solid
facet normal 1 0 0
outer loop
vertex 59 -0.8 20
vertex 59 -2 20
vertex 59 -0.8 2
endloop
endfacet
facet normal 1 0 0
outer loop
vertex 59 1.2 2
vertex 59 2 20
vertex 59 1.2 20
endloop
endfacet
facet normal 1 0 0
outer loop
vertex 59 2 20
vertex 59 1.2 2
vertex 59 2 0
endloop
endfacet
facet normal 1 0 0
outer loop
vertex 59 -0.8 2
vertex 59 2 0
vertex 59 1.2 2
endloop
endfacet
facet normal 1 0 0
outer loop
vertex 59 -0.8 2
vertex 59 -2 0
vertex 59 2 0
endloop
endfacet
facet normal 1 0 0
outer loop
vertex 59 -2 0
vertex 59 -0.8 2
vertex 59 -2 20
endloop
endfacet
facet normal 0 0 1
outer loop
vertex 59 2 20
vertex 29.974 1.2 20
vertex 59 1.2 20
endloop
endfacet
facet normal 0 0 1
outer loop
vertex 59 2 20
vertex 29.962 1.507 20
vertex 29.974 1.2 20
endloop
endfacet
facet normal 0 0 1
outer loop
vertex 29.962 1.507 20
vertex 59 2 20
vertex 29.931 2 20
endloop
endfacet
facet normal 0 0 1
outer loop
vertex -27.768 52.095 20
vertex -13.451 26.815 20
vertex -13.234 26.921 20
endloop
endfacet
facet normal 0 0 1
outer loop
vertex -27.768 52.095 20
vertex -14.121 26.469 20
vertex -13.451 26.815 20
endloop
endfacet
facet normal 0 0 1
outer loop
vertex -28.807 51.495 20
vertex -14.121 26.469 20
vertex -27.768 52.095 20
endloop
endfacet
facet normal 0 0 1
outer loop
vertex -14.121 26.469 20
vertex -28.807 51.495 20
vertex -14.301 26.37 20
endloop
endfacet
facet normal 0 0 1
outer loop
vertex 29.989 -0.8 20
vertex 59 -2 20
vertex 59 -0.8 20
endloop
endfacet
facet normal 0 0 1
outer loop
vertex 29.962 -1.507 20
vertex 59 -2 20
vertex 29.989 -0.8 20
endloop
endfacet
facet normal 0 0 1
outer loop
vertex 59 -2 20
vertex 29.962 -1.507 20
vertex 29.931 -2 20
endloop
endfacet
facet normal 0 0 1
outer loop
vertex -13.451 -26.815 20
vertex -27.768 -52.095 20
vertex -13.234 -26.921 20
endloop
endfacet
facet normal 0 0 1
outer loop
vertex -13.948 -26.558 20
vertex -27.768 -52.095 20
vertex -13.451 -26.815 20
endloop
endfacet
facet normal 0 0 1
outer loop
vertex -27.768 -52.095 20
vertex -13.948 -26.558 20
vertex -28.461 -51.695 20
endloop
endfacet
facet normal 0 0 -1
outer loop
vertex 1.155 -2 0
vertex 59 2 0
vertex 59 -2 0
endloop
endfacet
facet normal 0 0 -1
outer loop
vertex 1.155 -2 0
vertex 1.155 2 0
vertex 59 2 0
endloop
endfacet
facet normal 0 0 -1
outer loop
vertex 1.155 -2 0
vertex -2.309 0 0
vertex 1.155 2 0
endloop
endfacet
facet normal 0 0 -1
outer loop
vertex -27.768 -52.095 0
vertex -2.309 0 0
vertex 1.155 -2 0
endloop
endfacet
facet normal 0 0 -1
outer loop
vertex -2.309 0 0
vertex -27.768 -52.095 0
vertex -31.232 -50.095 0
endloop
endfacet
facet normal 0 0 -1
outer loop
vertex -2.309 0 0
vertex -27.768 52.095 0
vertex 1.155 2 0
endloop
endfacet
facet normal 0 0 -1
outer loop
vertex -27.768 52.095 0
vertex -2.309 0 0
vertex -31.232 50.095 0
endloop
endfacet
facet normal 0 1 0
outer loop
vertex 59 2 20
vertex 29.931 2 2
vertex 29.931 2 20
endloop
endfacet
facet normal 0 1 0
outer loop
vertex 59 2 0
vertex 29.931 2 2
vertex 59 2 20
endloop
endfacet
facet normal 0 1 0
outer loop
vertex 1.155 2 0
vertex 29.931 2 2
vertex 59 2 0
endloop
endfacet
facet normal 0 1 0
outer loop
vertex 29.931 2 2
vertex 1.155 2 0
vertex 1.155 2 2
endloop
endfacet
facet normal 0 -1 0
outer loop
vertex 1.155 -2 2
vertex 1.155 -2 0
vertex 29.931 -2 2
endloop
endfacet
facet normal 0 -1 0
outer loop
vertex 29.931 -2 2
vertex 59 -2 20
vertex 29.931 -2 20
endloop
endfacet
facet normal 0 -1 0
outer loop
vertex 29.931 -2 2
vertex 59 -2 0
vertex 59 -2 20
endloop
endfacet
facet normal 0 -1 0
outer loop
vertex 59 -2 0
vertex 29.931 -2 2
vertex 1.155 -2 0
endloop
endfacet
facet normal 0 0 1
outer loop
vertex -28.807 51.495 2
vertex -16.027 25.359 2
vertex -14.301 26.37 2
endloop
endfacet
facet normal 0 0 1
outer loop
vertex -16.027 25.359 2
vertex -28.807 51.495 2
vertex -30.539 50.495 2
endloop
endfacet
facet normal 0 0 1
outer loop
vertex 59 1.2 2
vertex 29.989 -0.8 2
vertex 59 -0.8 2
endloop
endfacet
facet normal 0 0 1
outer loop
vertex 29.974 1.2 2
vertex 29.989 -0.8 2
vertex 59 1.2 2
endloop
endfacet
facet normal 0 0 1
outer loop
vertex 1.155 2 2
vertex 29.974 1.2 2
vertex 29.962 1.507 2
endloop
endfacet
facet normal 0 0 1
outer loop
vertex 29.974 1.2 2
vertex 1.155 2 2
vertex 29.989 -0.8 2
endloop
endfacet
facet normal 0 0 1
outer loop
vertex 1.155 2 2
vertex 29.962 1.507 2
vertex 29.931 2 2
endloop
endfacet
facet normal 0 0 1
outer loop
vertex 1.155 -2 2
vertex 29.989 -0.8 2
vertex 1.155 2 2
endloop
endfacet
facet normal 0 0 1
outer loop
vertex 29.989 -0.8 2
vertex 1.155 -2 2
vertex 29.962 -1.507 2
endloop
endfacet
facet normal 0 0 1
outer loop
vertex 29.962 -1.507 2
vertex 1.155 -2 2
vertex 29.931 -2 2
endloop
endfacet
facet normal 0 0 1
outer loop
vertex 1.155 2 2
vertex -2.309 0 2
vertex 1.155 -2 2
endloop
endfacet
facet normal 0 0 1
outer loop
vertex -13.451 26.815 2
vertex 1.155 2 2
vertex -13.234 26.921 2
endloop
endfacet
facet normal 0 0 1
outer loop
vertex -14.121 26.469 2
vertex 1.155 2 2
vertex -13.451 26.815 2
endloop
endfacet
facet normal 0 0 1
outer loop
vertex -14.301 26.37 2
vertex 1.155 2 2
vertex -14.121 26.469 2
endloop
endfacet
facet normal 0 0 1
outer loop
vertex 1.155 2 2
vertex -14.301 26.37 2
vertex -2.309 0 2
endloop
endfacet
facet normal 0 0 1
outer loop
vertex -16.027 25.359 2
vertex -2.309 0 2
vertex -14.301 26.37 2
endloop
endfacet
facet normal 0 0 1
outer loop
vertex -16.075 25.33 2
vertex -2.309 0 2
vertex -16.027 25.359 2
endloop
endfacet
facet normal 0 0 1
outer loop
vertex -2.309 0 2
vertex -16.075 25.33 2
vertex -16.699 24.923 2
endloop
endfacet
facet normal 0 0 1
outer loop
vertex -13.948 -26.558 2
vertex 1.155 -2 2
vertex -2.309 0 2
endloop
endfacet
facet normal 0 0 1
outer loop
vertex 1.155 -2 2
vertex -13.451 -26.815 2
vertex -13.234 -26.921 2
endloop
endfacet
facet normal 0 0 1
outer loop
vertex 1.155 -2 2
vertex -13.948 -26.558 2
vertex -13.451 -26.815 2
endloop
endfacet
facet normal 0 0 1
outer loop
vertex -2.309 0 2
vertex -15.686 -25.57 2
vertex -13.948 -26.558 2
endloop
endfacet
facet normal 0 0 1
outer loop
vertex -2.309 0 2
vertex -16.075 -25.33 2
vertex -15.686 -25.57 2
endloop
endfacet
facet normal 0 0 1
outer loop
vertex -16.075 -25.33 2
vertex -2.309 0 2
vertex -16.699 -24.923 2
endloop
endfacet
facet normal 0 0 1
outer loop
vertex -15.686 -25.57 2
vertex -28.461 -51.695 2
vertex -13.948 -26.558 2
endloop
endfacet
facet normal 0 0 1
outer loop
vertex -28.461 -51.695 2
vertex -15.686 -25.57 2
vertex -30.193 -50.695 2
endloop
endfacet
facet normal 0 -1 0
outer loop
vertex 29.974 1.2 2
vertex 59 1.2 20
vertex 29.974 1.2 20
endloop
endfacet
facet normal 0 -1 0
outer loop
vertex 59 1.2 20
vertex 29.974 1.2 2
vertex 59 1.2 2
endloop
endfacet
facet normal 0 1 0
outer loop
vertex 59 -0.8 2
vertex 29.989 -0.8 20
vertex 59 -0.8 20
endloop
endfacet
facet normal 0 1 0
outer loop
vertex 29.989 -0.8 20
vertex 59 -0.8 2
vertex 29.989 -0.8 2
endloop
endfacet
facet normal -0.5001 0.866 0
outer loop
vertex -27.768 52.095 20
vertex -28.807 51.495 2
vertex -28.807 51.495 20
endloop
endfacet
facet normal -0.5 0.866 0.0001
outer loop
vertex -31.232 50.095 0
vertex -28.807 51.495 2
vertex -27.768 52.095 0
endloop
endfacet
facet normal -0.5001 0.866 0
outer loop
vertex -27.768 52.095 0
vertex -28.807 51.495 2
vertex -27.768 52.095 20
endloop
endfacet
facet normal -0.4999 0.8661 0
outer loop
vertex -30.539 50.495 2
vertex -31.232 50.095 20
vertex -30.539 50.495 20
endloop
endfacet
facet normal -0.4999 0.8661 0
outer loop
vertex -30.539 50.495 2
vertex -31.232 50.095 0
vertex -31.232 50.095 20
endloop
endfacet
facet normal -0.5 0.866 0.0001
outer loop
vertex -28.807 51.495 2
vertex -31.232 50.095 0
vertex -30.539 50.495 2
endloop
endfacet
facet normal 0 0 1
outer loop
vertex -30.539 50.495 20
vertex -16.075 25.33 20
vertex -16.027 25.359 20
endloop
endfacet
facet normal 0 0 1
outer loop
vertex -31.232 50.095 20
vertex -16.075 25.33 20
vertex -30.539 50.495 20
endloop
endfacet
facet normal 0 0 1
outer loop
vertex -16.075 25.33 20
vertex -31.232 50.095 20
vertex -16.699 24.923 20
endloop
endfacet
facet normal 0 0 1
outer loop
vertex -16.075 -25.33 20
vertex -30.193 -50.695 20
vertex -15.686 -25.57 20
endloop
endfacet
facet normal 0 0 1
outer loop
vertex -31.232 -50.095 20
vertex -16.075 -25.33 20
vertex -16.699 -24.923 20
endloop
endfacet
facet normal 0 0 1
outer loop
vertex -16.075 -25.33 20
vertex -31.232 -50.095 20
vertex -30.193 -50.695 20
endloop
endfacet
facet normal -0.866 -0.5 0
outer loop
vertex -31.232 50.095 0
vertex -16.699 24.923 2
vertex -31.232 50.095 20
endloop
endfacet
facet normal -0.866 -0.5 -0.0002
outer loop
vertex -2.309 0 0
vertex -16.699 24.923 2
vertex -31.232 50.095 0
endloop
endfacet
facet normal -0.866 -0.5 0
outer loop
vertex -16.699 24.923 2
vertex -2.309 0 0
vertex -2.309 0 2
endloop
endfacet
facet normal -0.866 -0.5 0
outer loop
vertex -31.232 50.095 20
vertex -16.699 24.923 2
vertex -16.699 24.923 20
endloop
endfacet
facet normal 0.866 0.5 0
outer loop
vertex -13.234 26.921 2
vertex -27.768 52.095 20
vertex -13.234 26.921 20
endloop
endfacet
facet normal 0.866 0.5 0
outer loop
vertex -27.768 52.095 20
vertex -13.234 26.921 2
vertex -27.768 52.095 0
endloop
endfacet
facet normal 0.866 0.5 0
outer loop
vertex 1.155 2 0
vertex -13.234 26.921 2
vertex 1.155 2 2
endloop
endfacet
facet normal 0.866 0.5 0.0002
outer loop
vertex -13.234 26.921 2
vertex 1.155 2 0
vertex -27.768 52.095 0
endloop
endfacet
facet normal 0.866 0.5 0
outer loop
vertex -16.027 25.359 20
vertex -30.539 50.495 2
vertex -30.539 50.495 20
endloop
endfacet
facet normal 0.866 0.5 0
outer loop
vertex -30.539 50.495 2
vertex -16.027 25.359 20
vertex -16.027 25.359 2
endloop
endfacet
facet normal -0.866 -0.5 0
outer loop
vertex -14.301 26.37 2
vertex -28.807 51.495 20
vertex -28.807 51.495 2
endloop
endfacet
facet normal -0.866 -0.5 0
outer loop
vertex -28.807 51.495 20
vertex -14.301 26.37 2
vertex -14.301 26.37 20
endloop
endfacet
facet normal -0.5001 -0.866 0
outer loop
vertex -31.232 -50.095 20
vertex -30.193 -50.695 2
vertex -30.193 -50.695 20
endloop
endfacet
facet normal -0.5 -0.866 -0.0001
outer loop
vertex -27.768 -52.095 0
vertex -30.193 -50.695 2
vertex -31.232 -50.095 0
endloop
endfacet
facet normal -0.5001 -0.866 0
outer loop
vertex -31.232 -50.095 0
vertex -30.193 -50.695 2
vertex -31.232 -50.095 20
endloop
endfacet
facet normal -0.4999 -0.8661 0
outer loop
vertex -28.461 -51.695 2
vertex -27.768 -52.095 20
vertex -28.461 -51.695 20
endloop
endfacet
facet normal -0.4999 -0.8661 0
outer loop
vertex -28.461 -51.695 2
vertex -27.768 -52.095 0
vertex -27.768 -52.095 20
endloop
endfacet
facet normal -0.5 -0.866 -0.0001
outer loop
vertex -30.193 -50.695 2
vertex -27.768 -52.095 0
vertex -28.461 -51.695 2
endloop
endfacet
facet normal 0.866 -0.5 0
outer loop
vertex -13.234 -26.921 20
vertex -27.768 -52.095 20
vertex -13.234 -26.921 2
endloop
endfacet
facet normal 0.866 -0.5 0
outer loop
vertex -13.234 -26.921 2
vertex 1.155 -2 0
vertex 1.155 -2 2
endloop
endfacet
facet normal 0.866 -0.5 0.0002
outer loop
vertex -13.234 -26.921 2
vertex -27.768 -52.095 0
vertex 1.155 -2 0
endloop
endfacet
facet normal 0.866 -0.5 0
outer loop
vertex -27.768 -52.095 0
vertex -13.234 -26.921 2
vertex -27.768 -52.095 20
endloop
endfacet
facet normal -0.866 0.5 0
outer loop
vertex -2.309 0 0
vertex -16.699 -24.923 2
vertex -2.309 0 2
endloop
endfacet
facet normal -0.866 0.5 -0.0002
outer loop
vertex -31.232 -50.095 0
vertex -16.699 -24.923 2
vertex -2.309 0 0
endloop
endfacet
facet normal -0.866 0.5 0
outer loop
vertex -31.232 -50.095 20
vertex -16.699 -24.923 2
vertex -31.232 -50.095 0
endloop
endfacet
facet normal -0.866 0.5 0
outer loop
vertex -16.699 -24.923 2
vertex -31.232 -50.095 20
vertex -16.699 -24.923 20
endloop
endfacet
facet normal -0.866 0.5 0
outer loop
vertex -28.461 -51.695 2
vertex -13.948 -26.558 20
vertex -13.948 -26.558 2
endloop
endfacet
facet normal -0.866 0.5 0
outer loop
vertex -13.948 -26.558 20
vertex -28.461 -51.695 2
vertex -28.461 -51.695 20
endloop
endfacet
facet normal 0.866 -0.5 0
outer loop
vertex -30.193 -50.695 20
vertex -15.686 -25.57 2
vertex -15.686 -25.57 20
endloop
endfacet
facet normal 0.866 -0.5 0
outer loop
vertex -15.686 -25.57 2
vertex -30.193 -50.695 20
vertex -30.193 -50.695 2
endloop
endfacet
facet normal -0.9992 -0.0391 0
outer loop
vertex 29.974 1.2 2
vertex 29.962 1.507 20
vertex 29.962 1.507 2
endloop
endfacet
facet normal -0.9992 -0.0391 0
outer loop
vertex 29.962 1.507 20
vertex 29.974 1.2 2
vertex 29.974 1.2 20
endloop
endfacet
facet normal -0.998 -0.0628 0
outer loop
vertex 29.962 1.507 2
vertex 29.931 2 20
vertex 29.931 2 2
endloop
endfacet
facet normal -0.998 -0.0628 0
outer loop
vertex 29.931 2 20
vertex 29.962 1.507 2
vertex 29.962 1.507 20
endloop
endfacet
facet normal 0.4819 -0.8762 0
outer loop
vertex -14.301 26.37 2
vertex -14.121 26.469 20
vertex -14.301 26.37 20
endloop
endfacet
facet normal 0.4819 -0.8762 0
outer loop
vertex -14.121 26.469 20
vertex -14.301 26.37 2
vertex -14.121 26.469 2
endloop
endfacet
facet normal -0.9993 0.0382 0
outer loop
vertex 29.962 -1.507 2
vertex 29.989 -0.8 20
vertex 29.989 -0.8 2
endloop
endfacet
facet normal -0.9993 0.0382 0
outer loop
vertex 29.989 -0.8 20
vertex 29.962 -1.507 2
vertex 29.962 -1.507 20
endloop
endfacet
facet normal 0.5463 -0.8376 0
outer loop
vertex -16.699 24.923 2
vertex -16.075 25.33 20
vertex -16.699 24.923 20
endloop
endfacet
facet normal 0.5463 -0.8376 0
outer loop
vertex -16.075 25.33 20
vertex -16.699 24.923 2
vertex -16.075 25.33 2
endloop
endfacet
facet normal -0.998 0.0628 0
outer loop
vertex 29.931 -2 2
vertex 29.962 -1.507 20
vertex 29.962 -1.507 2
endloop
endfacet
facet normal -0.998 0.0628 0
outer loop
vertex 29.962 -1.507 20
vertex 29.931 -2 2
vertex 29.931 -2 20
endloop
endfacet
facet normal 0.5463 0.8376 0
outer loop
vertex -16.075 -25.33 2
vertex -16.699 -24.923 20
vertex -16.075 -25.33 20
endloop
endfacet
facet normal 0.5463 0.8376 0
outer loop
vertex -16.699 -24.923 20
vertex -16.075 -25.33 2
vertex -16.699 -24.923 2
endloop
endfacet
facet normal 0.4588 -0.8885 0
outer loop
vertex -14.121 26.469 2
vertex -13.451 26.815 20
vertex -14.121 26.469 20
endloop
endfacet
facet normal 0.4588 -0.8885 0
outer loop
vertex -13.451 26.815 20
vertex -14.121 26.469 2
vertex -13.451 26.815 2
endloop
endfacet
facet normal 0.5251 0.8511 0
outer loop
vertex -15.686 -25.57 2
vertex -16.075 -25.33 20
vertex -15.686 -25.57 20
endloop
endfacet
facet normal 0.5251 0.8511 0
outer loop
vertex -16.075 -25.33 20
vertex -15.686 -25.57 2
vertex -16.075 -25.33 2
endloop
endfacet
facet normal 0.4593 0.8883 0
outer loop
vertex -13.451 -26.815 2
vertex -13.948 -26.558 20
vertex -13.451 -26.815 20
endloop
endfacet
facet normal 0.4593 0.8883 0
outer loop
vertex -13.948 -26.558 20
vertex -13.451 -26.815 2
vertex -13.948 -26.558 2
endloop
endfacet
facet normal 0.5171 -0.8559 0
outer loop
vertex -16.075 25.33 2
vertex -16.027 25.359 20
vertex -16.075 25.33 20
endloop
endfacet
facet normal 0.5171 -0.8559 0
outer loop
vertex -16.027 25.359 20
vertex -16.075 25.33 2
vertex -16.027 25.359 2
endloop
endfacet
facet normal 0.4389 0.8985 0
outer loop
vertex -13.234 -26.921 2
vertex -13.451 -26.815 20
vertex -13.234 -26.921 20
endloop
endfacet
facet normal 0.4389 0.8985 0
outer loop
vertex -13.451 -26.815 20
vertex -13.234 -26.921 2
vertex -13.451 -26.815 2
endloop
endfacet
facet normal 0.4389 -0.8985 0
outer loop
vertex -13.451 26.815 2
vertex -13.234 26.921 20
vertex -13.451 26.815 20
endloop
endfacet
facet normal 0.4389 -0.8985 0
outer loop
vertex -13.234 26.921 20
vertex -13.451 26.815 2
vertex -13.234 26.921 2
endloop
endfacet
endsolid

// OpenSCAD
$fn = 250;
height = 20;
difference() {
    for(i = [0: 3]) {
        rotate([0,0,120 * i])
        translate([0,0,0])
        difference () {
            translate([0, -2,0])
            cube([59, 4, height]);
            translate([0, -0.8,2])
            cube([60, 2, height + 1]);
        }
    }
    
    translate([0,0,2])
    cylinder(r=30, h = 82);
}
